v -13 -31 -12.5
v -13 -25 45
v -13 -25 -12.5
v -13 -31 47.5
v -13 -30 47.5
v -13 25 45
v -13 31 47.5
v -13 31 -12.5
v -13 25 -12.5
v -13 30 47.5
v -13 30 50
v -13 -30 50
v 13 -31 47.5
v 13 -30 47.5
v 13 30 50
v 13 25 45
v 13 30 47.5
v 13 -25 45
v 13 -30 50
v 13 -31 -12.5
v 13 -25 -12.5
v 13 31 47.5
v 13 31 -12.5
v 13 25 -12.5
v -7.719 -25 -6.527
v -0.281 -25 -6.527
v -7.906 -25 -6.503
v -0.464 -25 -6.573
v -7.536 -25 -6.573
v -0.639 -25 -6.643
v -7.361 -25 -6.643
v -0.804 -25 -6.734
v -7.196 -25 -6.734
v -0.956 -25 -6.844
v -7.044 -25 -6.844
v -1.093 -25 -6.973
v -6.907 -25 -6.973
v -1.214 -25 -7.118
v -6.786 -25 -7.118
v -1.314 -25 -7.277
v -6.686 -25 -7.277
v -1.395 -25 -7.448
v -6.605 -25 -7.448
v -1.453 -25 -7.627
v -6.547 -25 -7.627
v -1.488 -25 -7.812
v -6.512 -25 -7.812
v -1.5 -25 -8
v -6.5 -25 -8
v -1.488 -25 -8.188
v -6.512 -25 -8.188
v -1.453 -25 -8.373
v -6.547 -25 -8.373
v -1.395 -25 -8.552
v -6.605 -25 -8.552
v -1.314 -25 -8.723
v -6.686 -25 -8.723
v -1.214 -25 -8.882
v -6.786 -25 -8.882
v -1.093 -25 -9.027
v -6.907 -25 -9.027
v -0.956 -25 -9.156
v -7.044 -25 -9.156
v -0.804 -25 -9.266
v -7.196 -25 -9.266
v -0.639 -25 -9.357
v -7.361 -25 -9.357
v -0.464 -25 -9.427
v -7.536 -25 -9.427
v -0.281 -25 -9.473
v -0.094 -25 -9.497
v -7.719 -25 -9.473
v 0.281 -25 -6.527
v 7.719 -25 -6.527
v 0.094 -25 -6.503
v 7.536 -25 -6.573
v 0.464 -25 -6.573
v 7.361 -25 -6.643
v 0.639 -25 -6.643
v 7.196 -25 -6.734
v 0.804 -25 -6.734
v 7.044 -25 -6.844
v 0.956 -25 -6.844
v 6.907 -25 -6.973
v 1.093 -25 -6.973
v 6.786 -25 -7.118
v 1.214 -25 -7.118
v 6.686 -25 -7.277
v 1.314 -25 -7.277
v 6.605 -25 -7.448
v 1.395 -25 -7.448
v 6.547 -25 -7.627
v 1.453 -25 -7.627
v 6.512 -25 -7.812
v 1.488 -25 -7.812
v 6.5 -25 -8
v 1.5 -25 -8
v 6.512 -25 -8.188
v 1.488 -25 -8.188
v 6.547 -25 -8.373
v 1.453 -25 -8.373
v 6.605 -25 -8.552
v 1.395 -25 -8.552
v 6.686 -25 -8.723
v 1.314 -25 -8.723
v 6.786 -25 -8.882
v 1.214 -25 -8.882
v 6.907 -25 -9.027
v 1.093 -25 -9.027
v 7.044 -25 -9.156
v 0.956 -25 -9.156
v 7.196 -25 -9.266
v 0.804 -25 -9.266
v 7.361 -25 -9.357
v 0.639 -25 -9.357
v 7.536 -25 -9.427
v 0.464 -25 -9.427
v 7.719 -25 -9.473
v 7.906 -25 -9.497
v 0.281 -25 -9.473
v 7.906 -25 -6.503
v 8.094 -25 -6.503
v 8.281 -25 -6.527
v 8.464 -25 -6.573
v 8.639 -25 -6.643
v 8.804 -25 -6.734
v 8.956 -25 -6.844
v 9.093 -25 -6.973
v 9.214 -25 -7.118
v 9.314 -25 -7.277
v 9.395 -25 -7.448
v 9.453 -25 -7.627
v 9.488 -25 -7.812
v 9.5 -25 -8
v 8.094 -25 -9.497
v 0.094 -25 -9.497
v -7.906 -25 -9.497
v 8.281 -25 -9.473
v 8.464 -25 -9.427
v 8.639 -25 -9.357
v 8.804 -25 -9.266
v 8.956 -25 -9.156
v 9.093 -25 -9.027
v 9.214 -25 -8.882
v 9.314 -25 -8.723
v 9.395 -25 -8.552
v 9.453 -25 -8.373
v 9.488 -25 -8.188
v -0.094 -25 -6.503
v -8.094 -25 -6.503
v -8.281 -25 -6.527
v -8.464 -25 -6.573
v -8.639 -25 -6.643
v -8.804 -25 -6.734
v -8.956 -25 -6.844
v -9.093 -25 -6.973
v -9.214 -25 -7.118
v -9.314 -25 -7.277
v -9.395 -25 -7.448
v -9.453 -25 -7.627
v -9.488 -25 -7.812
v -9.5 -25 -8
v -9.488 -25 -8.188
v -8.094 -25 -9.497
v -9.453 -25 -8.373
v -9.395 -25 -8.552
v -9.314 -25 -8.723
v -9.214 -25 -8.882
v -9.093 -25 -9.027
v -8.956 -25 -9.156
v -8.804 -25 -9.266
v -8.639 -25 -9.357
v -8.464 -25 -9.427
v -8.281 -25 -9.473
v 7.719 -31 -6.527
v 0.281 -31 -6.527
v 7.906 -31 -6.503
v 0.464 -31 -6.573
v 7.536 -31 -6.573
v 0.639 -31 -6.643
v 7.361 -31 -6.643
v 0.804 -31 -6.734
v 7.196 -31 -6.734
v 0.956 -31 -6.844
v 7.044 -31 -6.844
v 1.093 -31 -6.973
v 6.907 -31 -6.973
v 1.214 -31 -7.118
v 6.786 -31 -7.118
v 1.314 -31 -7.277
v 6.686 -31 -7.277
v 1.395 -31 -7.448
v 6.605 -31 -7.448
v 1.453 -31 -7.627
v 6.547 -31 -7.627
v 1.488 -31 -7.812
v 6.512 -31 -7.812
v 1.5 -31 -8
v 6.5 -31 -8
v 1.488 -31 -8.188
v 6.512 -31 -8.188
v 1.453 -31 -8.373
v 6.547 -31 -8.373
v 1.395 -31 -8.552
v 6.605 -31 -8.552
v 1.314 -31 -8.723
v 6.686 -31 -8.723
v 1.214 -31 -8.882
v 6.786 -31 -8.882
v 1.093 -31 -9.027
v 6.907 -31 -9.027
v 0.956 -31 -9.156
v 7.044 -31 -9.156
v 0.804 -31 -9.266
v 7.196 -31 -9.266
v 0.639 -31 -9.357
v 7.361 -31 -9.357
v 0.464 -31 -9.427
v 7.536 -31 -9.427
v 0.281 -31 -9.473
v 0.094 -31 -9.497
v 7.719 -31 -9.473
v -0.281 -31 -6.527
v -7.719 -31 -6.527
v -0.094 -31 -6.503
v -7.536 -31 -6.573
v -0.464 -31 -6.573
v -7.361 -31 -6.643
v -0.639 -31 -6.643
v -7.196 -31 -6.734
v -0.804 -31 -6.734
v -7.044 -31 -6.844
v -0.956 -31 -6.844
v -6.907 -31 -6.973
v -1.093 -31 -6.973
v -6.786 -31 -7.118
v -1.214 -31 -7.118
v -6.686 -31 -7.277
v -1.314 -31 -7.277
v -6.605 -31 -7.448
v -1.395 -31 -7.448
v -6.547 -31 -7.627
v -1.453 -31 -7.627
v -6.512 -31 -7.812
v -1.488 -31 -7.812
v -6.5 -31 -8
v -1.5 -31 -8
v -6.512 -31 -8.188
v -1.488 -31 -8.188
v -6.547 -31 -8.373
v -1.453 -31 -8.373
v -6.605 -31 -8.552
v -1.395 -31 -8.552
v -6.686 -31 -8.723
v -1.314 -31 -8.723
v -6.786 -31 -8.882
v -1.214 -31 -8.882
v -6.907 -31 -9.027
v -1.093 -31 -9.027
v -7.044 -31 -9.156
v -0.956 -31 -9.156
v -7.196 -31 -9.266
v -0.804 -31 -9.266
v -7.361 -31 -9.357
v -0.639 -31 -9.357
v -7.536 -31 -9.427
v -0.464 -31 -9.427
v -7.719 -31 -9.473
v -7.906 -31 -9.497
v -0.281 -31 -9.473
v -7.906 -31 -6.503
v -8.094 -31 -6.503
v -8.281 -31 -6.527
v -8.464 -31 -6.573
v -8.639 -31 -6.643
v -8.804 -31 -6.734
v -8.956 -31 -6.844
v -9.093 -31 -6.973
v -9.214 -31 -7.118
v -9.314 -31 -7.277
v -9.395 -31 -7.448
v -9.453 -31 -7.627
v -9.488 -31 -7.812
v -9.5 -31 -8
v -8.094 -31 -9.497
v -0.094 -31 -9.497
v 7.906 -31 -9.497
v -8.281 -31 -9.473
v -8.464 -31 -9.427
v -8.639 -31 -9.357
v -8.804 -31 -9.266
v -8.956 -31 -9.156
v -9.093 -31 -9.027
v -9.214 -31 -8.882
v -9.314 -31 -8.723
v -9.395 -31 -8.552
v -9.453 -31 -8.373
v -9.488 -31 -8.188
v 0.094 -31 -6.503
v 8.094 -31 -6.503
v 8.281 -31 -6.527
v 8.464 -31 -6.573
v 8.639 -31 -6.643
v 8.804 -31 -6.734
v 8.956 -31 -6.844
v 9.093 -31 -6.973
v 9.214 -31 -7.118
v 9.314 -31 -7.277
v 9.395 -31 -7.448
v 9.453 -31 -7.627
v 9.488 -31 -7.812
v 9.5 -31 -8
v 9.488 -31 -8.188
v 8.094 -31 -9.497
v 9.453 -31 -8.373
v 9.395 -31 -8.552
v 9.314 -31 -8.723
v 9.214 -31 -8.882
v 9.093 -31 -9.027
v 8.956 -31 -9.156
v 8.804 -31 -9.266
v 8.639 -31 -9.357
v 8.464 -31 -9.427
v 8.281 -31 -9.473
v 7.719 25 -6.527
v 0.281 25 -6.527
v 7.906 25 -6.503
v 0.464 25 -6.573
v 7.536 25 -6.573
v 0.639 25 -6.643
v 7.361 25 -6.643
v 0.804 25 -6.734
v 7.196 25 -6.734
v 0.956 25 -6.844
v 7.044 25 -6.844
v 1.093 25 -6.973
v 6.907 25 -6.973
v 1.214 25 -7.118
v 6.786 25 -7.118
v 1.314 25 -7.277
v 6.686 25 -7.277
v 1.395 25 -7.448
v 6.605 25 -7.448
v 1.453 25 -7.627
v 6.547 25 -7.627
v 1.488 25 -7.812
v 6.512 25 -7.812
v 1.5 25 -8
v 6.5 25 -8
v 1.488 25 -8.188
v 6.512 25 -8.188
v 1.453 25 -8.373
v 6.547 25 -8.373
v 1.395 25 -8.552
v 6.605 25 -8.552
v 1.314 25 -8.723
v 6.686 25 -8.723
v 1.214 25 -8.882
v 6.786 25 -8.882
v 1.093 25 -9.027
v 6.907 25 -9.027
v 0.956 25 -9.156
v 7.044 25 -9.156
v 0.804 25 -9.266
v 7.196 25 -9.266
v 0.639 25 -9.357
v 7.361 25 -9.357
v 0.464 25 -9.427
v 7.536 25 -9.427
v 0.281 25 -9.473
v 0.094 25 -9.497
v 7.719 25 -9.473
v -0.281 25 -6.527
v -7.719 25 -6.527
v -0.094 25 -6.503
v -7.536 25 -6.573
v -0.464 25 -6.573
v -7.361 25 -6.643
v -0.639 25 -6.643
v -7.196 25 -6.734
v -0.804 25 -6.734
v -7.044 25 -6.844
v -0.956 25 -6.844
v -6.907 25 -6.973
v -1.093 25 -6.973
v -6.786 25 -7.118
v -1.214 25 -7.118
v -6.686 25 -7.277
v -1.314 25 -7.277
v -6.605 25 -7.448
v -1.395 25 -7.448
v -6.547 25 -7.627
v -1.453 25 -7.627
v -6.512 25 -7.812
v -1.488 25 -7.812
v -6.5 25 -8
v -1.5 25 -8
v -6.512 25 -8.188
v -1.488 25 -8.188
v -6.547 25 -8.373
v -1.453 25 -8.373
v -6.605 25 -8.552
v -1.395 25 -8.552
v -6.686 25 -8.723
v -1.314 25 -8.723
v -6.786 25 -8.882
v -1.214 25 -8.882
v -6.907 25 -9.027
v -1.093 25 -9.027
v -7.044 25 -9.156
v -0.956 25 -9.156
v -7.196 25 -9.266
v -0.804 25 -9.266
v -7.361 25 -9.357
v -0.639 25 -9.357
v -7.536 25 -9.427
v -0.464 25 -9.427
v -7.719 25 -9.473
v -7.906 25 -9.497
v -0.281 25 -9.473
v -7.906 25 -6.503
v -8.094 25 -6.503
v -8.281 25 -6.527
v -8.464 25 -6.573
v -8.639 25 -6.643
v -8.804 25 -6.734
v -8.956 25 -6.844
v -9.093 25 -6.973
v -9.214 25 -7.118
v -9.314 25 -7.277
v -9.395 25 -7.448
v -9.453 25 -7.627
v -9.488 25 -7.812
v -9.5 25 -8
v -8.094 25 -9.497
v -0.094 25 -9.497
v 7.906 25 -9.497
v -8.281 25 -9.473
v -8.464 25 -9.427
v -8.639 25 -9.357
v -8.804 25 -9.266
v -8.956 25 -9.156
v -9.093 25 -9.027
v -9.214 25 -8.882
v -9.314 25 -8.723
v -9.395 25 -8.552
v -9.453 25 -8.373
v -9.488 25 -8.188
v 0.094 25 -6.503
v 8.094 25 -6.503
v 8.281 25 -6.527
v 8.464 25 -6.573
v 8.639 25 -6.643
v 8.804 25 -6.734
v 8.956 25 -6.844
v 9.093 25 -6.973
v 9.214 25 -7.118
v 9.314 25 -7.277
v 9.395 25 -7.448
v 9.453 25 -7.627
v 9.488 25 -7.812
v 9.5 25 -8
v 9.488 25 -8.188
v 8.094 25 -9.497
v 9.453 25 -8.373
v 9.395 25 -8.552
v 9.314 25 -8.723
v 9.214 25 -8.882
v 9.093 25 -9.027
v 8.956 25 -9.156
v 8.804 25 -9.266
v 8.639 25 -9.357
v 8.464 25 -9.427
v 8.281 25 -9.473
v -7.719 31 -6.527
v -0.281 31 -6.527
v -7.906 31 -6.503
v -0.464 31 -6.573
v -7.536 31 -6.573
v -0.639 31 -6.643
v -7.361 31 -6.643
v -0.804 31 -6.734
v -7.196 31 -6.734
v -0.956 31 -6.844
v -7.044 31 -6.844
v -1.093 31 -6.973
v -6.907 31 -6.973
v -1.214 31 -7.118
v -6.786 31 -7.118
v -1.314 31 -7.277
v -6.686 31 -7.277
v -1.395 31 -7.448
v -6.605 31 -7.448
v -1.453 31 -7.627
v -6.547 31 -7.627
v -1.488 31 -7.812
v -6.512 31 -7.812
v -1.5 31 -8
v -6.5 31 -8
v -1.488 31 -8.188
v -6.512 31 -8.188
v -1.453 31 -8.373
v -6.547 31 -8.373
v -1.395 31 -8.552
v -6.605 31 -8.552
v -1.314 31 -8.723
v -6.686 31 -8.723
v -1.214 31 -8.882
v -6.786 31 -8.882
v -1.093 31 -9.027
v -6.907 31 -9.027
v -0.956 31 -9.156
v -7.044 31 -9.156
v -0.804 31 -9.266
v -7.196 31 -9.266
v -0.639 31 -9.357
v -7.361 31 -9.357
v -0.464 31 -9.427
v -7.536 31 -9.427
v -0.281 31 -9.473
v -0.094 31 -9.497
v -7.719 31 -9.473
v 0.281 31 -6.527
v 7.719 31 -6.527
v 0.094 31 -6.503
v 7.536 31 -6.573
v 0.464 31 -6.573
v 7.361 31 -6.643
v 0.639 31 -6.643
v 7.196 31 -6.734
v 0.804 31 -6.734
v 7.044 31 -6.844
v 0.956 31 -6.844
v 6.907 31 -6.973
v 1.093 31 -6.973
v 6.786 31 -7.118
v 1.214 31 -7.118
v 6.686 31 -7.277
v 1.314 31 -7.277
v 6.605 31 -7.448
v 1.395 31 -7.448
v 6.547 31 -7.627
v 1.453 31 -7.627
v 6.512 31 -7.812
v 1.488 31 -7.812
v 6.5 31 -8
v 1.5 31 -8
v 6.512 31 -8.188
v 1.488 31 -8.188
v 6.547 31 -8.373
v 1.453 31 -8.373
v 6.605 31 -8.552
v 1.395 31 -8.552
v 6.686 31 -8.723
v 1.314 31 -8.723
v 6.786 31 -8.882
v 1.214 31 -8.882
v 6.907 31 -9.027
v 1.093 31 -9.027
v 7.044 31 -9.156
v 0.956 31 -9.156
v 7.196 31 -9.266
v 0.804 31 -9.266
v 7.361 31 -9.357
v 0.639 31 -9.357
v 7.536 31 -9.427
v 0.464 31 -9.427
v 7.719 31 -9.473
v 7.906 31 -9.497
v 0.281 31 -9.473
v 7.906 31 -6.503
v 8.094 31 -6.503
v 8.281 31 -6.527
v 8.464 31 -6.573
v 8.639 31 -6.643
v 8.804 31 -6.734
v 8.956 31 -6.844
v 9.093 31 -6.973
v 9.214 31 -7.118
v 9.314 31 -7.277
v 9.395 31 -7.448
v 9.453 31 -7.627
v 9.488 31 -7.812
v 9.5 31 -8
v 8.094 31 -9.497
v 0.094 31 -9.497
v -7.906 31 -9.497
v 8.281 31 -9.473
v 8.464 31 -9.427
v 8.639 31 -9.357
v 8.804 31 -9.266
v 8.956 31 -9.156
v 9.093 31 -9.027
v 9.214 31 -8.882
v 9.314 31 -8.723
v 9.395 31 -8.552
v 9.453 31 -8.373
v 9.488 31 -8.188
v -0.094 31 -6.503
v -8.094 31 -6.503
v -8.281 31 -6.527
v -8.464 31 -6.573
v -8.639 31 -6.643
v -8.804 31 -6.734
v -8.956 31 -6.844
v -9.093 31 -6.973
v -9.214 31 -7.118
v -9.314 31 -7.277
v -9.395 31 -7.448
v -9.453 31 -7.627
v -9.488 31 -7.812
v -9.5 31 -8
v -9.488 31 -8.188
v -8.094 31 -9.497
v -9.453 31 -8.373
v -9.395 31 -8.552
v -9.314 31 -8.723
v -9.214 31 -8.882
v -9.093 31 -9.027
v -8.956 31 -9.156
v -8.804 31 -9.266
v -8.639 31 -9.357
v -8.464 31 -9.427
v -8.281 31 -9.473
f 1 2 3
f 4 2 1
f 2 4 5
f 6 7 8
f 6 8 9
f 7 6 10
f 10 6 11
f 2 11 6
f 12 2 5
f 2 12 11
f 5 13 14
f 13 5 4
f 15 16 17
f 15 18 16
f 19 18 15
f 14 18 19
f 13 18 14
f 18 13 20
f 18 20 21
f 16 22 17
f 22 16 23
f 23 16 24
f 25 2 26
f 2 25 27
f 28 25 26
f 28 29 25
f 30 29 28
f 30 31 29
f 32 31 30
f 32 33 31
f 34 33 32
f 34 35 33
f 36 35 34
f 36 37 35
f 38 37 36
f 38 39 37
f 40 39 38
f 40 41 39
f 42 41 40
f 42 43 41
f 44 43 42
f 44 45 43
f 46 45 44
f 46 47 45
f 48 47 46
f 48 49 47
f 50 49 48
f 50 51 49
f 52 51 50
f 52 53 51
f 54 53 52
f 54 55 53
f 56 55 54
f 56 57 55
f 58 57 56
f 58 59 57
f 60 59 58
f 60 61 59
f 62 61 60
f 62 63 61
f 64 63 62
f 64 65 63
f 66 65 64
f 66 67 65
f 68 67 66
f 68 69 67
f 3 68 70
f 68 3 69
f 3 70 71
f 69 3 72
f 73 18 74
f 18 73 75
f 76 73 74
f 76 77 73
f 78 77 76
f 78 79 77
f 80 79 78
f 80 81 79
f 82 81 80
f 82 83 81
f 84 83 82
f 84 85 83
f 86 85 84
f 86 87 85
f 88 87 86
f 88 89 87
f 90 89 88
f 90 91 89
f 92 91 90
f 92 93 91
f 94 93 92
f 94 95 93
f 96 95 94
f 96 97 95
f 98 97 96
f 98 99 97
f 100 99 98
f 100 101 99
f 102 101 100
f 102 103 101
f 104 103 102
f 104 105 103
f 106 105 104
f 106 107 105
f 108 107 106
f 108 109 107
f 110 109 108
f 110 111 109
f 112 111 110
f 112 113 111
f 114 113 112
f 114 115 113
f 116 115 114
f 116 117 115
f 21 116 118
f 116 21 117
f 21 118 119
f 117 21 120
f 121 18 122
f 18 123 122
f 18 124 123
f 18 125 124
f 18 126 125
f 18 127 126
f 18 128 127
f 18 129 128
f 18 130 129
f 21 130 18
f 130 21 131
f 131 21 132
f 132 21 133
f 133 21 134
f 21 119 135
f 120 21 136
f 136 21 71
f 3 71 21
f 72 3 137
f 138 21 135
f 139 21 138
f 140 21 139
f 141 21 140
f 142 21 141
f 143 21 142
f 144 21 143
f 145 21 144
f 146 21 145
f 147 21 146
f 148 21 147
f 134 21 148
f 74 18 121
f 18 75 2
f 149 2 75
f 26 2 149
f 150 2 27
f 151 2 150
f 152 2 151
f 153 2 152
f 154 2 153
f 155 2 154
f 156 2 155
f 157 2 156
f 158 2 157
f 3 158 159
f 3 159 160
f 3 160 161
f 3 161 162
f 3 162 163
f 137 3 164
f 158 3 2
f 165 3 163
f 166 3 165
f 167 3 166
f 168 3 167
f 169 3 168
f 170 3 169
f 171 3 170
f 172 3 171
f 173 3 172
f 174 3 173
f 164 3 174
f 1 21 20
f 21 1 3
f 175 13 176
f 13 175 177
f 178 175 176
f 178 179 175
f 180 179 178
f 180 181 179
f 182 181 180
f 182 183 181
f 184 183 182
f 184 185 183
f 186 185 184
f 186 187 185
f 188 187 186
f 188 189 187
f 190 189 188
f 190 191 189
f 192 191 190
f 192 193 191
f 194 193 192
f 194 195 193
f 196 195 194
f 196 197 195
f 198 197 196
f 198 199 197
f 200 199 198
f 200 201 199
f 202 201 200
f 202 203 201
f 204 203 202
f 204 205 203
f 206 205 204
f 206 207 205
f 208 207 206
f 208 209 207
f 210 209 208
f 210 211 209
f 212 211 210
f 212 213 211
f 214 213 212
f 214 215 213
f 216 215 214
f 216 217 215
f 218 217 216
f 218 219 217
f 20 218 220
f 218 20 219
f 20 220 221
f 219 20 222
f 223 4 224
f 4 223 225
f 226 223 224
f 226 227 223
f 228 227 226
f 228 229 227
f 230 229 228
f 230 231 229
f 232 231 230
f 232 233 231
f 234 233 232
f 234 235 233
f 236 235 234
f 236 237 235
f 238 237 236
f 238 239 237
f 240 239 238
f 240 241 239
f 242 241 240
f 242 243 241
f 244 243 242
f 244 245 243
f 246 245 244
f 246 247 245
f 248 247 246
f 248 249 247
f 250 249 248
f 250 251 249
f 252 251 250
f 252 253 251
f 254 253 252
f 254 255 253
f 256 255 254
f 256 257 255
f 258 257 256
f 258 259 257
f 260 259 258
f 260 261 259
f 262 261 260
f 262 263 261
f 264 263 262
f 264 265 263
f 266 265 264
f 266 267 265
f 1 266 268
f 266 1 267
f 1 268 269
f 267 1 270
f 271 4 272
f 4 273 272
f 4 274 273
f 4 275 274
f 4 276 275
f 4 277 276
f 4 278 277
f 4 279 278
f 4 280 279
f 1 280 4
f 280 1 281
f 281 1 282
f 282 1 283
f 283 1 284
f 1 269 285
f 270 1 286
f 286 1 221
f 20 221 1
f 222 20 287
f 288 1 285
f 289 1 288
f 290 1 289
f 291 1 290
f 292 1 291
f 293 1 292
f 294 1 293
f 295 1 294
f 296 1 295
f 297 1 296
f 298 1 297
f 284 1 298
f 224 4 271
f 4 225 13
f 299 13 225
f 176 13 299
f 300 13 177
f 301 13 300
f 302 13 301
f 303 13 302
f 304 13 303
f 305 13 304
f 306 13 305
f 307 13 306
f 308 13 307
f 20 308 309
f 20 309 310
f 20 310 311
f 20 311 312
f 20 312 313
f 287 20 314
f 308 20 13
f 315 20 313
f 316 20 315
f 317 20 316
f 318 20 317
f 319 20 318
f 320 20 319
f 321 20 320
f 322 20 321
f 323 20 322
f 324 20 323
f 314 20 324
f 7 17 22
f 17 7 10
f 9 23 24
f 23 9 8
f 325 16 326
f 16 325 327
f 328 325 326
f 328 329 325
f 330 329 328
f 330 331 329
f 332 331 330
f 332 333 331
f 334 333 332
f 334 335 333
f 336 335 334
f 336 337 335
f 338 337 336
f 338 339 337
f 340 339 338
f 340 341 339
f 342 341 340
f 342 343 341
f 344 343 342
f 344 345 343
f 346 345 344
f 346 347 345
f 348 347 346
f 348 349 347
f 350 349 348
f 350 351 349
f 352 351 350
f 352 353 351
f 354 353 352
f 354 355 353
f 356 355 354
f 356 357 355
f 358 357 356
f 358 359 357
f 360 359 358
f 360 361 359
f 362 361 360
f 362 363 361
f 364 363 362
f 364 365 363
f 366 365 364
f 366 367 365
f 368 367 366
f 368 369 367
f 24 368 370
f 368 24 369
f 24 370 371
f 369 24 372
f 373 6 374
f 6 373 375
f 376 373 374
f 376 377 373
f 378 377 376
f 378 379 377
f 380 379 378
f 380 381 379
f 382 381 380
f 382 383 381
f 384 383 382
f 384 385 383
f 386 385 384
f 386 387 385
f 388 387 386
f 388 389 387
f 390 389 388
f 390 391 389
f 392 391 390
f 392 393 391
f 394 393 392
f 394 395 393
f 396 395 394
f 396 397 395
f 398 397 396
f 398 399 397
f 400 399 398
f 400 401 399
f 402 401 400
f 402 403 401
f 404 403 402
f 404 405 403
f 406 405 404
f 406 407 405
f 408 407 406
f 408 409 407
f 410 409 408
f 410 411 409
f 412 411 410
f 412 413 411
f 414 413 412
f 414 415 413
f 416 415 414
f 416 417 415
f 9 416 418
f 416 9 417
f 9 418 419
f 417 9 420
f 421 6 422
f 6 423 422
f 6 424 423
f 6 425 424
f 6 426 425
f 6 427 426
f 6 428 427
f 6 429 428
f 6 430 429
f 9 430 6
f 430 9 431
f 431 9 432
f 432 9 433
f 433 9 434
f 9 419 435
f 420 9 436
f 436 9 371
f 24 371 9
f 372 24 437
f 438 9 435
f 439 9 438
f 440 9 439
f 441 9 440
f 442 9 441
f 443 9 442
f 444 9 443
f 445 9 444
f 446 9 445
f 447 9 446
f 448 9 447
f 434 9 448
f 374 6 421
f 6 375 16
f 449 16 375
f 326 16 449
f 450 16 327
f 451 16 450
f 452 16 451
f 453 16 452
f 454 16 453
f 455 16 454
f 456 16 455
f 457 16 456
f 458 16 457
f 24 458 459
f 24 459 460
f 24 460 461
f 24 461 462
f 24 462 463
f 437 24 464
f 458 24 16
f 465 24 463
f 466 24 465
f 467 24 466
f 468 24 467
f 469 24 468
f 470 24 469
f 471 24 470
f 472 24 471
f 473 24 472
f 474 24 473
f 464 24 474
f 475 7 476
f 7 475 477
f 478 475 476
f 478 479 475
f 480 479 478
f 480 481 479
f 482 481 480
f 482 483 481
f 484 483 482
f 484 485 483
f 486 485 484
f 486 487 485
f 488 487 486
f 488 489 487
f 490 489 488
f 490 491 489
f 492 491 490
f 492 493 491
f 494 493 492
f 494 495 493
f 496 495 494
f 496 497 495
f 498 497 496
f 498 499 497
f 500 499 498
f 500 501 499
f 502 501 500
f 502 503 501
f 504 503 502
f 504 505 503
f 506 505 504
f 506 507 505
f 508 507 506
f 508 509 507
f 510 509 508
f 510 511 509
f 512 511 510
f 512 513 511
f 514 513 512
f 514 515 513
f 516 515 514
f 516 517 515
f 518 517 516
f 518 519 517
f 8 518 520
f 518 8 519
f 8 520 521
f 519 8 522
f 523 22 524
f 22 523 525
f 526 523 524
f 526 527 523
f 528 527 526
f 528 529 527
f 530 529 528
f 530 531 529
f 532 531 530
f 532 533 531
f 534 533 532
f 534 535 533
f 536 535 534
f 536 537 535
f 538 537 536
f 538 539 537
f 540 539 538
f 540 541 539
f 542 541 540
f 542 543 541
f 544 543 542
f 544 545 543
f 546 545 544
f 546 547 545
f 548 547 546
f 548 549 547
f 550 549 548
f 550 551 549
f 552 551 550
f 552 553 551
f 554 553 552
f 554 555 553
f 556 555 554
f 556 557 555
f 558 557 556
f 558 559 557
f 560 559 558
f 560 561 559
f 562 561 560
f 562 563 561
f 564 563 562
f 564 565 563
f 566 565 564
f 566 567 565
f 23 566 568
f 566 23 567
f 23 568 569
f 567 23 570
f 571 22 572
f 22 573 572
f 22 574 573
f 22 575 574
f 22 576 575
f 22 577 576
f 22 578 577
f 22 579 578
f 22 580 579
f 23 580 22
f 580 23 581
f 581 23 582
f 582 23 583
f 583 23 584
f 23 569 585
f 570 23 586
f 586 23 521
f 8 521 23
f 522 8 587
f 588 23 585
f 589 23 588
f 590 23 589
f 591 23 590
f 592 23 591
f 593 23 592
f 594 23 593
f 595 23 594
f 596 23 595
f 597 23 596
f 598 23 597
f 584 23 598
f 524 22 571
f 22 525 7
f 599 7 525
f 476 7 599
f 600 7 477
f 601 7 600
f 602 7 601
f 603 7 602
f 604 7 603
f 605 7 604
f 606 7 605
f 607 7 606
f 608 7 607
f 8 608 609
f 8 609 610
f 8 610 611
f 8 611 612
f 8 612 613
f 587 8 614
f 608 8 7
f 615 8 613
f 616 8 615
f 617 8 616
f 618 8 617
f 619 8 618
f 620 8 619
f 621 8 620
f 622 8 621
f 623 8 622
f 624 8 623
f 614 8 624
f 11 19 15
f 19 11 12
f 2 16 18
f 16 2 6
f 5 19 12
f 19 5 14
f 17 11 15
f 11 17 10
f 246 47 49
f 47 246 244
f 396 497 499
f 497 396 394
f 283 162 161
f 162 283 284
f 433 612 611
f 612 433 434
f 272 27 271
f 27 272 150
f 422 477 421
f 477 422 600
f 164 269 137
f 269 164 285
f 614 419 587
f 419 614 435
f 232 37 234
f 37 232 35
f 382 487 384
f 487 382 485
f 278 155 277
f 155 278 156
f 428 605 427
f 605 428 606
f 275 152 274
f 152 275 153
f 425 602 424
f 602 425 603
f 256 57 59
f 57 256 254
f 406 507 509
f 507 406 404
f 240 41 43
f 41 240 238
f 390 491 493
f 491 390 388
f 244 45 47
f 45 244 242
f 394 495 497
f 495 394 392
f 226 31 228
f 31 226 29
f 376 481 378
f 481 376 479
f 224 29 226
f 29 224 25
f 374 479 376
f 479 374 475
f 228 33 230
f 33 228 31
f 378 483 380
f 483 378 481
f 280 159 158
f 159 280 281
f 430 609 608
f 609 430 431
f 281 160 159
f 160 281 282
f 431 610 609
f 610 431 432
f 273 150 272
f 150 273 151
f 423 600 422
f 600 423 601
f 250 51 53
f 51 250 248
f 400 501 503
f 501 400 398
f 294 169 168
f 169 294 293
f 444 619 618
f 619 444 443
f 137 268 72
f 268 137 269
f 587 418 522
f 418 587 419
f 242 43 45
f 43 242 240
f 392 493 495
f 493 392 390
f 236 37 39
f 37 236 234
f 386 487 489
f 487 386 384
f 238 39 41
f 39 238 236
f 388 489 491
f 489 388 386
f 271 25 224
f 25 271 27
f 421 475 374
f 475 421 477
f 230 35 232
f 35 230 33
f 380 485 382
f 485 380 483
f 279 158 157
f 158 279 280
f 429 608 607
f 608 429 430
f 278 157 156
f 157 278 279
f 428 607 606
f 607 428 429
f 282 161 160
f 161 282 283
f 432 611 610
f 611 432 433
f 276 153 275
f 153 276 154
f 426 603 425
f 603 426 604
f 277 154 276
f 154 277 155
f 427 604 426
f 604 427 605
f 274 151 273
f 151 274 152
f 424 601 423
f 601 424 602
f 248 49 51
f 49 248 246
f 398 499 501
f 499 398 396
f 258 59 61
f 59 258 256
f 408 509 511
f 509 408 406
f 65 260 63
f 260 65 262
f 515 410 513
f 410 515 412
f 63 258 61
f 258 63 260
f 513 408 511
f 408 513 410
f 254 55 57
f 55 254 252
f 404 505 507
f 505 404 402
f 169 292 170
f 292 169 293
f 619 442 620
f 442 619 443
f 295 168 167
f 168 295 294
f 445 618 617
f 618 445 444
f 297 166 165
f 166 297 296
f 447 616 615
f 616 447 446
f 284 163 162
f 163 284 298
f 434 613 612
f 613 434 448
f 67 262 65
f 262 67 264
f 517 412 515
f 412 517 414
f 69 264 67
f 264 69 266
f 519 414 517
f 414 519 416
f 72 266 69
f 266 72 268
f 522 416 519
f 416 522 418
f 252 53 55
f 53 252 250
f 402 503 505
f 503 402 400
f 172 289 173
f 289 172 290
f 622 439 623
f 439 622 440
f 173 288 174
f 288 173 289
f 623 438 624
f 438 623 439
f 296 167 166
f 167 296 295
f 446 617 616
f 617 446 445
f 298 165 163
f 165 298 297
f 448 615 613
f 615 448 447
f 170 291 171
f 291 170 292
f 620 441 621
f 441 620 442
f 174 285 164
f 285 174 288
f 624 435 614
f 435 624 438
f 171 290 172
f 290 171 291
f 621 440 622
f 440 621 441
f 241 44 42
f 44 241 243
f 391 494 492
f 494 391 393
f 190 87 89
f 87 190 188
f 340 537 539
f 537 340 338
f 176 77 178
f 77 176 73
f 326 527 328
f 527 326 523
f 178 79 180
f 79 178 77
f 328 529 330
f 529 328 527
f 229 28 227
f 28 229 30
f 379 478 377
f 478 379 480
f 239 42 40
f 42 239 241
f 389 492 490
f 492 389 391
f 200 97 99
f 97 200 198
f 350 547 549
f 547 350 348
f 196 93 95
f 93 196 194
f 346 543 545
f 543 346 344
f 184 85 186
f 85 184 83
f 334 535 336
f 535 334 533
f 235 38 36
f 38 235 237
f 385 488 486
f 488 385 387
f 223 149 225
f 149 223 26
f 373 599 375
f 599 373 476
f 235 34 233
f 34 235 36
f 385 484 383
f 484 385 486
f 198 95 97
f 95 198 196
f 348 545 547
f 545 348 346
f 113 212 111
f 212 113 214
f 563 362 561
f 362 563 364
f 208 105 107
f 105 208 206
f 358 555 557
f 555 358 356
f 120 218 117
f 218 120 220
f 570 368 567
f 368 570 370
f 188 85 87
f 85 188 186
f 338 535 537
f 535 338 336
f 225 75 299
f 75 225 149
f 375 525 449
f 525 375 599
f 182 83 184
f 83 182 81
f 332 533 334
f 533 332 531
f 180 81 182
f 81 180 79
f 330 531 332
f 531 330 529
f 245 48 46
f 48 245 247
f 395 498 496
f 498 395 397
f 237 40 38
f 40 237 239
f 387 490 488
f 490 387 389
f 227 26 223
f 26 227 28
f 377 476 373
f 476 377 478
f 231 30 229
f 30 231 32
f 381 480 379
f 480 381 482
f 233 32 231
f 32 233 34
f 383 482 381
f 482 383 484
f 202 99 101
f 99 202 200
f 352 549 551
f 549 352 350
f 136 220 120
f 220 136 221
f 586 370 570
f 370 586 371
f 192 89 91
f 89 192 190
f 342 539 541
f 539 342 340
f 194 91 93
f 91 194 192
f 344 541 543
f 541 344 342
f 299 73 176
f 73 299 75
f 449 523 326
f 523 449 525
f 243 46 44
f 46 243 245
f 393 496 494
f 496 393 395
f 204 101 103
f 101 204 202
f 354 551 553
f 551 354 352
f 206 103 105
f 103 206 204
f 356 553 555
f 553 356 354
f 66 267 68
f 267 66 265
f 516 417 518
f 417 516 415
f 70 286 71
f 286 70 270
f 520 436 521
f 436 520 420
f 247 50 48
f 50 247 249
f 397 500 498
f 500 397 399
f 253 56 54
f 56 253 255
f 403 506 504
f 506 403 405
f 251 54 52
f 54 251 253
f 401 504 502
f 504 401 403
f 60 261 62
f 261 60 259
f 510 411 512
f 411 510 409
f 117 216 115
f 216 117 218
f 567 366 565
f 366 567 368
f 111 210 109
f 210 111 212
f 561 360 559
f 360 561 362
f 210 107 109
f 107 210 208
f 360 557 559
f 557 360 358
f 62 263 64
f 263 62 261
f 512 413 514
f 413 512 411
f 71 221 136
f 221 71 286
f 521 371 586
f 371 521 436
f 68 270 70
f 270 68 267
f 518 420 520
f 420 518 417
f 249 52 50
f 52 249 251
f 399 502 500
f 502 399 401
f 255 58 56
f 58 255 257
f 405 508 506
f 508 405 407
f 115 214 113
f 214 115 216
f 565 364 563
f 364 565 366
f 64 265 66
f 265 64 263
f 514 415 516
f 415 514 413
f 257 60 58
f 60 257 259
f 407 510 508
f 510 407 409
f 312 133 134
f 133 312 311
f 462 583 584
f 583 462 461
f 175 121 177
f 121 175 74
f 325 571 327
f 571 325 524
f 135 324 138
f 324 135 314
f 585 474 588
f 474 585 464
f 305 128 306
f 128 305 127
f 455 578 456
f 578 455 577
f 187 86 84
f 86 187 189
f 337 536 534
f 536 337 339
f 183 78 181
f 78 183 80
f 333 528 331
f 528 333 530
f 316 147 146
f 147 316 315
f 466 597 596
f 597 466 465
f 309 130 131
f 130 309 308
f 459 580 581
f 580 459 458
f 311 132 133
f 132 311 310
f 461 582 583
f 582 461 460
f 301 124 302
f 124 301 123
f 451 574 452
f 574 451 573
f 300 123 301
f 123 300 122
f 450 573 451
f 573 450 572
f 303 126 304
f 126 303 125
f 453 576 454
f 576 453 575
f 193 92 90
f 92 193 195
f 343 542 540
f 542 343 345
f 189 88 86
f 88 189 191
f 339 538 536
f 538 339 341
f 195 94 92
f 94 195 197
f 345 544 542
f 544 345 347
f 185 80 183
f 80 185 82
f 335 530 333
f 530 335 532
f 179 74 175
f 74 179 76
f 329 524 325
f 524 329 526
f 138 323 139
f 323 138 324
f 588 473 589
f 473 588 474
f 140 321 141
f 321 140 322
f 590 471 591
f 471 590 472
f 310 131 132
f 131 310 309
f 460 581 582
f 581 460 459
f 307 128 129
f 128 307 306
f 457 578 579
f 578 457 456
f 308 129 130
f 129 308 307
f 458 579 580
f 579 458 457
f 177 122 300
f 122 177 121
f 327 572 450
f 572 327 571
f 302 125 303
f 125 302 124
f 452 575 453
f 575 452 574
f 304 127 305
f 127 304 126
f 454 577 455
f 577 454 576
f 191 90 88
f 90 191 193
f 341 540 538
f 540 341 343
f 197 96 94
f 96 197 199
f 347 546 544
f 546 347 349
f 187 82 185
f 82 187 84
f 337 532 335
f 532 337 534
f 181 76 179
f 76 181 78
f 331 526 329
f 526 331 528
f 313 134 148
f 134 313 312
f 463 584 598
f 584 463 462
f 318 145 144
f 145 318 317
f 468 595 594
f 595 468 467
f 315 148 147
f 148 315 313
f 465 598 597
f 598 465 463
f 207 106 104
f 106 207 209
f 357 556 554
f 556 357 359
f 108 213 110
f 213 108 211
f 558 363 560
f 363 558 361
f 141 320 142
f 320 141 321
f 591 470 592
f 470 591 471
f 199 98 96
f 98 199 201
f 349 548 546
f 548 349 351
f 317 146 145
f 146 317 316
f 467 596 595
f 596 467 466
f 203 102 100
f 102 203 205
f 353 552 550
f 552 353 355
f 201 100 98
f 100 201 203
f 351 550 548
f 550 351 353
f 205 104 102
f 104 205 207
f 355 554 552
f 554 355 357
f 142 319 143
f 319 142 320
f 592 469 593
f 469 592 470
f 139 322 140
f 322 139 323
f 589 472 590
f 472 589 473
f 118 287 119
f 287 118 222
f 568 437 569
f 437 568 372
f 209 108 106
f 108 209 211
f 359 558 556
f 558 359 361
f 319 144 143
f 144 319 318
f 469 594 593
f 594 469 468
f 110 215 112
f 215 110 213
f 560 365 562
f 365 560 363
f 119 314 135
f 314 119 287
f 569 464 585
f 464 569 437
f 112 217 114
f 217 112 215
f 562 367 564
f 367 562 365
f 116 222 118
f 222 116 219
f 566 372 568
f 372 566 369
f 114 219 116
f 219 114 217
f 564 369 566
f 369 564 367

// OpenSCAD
module batteryCradlePlastic()
{
  translate([-13,-31,-12.5]) 
       { cube([26, 6, 60]); } 
  translate([-13, 25,-12.5]) 
       { cube([26, 6, 60]); } 
  //Horizontal battery holder       
  translate([-13, -30,45]) 
       { cube([26, 60, 5]); } 
}

module batteryCradleScrews()
{
 $fn=50;   
 rotate([90,0,0])
 {
  translate([-8,-8,-100]) 
    {  
      cylinder(h=200,r=1.5);  
    } 
  translate([0,-8,-100]) 
    {  
      cylinder(h=200,r=1.5);  
    }    
  translate([8,-8,-100]) 
    {  
      cylinder(h=200,r=1.5);  
    }
 }   
}

module batteryCradle()
{ 
  difference()
   {
     batteryCradlePlastic();
     batteryCradleScrews();
   } 
}


batteryCradle();
